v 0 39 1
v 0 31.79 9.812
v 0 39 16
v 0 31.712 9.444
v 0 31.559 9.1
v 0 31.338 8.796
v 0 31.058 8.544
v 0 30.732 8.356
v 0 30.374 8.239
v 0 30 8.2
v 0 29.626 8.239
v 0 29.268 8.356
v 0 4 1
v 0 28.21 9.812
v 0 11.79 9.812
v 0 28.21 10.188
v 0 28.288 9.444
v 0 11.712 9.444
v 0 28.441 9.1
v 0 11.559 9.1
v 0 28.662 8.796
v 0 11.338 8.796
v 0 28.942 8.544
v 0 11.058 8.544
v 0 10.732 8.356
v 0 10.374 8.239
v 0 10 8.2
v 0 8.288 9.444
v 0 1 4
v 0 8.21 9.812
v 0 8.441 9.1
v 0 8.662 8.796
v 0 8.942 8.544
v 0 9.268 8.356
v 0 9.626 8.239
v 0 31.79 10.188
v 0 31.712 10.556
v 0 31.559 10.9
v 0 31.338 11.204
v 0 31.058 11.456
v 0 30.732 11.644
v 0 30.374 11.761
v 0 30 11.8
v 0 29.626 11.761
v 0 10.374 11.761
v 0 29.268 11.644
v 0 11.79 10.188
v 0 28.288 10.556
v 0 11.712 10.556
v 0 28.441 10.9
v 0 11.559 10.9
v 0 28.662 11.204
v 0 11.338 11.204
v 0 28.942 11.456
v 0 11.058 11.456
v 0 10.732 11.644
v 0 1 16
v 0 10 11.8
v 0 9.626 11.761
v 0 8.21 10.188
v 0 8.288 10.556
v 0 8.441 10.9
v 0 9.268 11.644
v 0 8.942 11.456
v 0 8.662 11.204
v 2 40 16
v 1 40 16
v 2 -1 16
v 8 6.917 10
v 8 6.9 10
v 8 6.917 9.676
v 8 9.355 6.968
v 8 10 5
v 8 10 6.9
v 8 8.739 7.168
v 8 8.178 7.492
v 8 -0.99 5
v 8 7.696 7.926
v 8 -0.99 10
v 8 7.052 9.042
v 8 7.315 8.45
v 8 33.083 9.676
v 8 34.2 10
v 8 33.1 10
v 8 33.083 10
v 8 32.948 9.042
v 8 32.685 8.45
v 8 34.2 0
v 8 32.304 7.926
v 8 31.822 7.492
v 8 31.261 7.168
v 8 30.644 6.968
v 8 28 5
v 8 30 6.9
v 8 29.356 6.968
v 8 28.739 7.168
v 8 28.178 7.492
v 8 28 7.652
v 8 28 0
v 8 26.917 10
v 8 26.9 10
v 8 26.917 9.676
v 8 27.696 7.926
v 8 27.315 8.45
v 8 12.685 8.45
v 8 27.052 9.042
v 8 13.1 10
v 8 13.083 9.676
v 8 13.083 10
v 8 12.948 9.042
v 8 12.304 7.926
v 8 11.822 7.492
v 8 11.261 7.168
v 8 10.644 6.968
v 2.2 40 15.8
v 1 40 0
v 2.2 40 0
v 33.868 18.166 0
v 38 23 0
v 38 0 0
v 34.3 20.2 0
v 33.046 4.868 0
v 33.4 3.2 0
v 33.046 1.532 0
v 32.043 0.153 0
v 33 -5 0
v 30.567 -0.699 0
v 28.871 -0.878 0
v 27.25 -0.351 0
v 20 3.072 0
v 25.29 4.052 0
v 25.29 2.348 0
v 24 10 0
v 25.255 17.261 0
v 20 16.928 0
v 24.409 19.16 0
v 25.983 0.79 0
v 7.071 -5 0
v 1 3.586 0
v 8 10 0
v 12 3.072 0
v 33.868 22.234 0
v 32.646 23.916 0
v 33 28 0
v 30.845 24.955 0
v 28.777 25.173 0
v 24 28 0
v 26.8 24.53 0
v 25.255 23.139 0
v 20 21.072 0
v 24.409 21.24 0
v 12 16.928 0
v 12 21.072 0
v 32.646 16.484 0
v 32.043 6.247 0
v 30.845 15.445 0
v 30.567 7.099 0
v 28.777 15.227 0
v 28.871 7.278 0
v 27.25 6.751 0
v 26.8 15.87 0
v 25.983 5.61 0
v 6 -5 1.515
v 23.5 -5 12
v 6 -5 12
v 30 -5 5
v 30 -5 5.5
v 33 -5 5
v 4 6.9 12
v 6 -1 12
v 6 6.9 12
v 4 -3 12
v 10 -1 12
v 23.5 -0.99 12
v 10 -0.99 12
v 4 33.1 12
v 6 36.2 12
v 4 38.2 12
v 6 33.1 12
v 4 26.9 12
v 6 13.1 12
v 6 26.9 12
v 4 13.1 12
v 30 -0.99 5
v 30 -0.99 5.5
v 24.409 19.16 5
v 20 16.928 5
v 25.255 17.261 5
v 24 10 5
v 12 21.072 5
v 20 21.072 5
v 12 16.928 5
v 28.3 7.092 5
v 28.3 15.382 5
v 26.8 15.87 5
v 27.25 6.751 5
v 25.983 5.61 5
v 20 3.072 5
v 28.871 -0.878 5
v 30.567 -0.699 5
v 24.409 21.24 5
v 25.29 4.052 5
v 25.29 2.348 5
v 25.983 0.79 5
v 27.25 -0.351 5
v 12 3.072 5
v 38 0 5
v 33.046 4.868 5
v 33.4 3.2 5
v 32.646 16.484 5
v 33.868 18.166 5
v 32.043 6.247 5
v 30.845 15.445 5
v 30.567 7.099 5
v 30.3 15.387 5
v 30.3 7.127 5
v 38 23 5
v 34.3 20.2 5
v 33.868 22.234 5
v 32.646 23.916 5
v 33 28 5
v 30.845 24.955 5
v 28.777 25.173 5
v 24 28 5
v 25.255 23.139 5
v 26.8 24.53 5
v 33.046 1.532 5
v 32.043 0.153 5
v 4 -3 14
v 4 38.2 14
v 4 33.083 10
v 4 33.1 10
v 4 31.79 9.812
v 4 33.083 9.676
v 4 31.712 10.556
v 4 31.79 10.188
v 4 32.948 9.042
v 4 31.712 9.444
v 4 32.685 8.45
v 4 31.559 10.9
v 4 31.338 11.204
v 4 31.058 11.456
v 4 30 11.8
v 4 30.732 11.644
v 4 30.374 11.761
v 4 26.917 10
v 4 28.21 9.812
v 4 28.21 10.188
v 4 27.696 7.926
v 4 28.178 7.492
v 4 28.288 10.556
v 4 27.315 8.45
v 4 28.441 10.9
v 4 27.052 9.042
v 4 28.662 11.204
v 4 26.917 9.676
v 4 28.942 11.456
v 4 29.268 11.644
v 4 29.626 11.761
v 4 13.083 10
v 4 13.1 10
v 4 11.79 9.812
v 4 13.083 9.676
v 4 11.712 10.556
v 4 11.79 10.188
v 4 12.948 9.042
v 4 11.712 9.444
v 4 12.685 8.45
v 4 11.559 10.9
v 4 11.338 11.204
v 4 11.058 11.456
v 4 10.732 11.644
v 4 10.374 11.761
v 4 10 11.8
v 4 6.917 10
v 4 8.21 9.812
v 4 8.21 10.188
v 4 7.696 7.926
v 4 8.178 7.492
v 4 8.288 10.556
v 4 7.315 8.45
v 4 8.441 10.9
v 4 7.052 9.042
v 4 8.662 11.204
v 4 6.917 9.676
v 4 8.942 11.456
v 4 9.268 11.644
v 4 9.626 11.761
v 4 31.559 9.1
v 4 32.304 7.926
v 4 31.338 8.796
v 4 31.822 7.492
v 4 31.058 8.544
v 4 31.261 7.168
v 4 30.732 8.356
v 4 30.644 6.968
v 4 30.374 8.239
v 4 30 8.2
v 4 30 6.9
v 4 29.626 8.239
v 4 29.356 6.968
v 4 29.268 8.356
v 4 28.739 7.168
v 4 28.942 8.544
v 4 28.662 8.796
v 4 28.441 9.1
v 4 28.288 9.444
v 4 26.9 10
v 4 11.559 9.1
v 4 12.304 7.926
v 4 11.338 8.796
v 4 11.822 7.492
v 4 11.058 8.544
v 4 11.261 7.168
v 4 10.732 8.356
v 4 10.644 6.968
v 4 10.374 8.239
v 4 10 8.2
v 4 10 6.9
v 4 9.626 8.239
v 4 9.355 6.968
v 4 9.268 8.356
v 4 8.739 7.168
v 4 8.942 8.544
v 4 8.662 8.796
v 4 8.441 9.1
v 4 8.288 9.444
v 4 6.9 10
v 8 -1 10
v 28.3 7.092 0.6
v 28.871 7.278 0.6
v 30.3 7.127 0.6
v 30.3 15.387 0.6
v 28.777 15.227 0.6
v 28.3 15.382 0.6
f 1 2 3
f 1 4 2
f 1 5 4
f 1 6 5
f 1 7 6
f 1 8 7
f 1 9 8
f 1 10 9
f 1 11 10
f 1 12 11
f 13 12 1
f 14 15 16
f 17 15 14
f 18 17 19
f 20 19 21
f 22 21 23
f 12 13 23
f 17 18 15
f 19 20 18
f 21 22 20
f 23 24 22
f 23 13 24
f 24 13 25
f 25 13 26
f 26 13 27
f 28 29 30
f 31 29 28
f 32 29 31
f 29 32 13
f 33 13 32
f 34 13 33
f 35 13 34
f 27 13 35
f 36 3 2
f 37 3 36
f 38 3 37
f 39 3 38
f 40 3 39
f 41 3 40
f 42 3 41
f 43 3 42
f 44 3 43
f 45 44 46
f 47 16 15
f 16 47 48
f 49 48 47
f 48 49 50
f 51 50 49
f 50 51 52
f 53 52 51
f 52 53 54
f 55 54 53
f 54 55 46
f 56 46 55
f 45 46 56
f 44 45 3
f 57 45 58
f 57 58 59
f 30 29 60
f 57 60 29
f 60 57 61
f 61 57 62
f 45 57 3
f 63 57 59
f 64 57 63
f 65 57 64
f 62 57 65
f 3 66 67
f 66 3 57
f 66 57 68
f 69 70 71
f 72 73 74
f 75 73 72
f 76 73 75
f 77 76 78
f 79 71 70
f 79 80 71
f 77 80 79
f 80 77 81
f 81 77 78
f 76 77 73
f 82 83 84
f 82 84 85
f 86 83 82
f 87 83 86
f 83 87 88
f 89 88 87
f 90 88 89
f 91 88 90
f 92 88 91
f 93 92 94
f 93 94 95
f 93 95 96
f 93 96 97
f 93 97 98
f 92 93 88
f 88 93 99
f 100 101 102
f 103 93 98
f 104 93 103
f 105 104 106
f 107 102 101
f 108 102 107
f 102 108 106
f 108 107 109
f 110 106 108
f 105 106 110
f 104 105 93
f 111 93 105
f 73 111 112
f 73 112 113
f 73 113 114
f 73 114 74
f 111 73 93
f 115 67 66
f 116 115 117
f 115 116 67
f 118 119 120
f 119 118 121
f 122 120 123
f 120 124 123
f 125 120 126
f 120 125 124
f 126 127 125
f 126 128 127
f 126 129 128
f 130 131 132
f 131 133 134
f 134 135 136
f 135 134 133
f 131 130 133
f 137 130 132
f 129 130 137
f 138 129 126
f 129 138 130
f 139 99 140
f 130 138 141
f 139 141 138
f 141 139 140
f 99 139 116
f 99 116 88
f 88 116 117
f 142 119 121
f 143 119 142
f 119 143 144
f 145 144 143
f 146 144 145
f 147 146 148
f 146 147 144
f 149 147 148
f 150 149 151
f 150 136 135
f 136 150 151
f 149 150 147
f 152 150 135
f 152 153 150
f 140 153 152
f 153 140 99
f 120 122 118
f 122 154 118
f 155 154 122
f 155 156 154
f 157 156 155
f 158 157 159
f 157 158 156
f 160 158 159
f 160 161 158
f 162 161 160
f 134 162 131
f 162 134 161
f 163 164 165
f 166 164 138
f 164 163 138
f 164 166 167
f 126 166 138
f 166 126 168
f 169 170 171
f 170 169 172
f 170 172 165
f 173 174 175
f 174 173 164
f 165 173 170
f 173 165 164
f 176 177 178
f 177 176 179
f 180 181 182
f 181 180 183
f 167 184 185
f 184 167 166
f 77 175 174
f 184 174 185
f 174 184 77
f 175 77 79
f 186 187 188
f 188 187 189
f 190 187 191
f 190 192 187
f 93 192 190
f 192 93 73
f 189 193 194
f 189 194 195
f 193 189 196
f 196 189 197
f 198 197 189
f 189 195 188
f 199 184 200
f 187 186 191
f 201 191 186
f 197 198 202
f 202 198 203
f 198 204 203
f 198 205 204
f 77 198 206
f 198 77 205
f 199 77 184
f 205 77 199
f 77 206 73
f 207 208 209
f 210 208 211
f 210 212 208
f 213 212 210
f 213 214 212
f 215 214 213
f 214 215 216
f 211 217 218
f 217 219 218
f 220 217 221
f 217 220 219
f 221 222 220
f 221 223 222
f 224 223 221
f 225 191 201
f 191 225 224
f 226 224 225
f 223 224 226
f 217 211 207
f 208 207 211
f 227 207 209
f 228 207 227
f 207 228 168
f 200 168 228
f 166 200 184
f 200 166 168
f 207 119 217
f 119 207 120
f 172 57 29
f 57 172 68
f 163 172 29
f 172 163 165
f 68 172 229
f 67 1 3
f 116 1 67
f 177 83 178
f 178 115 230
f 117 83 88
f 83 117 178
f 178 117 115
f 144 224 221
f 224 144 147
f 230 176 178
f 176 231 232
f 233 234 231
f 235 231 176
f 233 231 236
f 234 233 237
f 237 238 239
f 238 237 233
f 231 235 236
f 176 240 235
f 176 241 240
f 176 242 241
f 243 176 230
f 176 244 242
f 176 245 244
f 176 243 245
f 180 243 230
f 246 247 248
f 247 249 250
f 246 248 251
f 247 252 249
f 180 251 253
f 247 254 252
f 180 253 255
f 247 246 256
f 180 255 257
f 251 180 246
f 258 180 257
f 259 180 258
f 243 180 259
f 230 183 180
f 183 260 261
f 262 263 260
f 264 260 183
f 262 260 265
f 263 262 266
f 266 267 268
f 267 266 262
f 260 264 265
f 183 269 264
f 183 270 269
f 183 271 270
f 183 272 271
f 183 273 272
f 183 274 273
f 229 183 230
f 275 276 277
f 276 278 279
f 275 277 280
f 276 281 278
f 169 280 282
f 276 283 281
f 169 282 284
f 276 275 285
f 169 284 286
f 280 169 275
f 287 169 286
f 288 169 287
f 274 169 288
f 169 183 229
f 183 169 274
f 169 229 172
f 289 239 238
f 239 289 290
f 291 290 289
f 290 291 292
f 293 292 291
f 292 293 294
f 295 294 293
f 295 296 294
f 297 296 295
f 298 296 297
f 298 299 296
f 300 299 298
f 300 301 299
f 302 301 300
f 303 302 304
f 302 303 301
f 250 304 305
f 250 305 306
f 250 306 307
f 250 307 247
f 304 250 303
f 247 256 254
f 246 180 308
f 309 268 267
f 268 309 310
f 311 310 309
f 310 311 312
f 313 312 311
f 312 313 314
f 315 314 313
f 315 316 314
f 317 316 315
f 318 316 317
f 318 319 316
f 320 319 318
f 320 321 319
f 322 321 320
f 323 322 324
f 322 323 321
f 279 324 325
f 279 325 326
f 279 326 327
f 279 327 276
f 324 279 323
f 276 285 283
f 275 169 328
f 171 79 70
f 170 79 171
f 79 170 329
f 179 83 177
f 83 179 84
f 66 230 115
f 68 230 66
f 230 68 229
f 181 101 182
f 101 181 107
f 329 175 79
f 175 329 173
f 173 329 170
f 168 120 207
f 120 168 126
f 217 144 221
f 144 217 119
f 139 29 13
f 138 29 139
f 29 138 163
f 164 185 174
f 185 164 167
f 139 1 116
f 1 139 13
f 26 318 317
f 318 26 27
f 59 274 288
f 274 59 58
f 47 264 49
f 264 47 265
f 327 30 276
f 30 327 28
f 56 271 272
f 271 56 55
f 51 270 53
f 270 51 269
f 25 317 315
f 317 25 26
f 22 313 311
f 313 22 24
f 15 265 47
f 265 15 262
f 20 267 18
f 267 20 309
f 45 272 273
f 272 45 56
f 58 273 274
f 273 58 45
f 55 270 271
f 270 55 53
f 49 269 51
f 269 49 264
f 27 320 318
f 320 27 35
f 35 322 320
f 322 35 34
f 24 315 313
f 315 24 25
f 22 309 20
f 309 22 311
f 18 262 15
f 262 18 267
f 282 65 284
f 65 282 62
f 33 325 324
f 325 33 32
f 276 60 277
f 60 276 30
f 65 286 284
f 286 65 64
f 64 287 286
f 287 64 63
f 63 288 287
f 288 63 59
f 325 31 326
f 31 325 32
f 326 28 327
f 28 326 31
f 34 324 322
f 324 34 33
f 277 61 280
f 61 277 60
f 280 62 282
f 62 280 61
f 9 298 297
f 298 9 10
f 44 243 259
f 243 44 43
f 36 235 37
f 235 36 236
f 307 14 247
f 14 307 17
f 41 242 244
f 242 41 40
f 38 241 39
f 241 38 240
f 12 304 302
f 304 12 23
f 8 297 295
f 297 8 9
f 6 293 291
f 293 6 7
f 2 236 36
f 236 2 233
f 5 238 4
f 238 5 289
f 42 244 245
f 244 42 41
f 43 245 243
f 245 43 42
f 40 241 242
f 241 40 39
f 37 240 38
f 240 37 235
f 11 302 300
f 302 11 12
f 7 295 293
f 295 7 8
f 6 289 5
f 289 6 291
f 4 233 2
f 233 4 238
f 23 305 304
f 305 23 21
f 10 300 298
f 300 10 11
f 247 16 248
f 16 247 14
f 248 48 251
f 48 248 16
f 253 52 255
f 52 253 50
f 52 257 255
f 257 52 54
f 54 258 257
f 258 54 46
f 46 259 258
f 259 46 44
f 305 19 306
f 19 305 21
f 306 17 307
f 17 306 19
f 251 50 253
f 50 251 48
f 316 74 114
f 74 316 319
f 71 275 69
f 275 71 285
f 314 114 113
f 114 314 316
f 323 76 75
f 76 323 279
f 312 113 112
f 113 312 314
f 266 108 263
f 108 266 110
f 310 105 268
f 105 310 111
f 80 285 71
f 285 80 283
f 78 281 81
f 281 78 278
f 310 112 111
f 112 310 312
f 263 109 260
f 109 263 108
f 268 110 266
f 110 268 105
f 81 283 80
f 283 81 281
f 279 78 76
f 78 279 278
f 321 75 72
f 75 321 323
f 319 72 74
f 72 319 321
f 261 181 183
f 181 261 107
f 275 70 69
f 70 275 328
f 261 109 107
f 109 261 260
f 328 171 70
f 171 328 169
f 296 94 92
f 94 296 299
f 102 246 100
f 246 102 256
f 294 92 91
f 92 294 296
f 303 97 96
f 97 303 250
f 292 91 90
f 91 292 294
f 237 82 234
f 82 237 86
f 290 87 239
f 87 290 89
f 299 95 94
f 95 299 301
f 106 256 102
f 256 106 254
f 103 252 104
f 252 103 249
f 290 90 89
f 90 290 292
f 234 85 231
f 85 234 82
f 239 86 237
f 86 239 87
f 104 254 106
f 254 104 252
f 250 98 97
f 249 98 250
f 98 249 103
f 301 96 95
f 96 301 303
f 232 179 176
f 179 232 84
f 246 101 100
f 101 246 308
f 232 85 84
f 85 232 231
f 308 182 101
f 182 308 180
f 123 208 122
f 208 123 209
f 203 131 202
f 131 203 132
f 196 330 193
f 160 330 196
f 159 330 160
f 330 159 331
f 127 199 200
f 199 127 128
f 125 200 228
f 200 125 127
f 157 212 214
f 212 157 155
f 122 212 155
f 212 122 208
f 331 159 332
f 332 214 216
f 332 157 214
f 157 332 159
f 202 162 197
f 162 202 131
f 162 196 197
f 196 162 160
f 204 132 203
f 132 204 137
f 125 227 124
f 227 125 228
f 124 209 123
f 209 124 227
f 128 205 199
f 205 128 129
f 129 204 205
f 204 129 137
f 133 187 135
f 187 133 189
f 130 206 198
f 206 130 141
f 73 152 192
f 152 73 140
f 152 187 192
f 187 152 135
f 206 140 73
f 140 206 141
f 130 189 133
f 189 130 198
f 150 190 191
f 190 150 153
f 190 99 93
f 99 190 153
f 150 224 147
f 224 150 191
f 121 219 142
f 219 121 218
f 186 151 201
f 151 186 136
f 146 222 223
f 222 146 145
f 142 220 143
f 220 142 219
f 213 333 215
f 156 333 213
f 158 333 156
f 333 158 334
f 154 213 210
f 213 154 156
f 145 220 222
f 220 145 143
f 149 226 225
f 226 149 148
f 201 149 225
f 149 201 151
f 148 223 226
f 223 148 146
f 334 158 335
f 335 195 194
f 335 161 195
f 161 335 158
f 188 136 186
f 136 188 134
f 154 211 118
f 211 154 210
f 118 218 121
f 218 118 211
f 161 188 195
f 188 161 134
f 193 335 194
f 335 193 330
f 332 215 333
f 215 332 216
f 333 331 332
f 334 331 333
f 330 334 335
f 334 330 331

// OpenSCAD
//Original Prusa

// PRUSA iteration3
// Z axis top holder
// GNU GPL v3
// Josef Průša <iam@josefprusa.cz> and contributors
// http://www.reprap.org/wiki/Prusa_Mendel
// http://prusamendel.org


module z_top_base(){
 translate([0,-5,0]) cube([8,45,16]); // plate touching the base
 translate([0,-5,0]) cube([30,4.01,12]); // plate touching the base
 translate([0,-5,0]) cube([38,45,5]); // plate touching the base   
}

module z_top_fancy(){
 // Corner cutouts
 translate([0.5,0.5,0])         rotate([0,0,-45-180]) translate([-15,0,-1]) cube([30,30,51]);    
 translate([0.5,40-0.5,0])      rotate([0,0,-45+90])  translate([-15,0,-1]) cube([30,30,51]);  
 
    
 translate([-13,40+5+10.2,0])   rotate([0,0,-45-0])   translate([0,0,-1])   cube([30,30,51]); // frame side angle
 translate([8,28,0]) translate([0,0,-1]) cube([50,50,51]);       

 translate([4,0,12]) rotate([0,0, 0])    translate([0,-5,0]) cube([30,50,30]);          
 translate([6,0,12]) rotate([0,-45, 0])  translate([0,-5,0]) cube([30,50,30]);
 translate([8,4,10]) rotate([0,-45, 0])  translate([0,-5,0]) cube([30,50,30]);

 translate([38-2.5,-5+2.5,0])   rotate([0,0,-45-90]) translate([-15,0,-1]) cube([30,30,51]);         
 translate([35,26,0])           rotate([0,0,-45])    translate([-15,0,-1]) cube([30,30,51]); // outer corner
 translate([0,0,5])             rotate([45+180,0,0]) rotate([0,0,-45+90])  translate([0,0,-15]) cube([30,30,30]);

 // Stiffner cut out
 translate([30,0,5.5]) rotate([0,-45,0]) translate([0,-5,0]) cube([30,50,30]);
 //easy cleanup fix
 translate([0.5,0,0.5]) rotate([0,45,0]) translate([-2.5,0,-5]) cube([5,40,5]);
}

module z_top_holes(){
     // Screw holes frame
     translate([-1,10,10])      rotate([0,90,0]) cylinder(h = 20, r=1.8, $fn=30);
     translate([-1,10+20,10])   rotate([0,90,0]) cylinder(h = 20, r=1.8, $fn=30);
    

    // Screw heads
    translate([4,10,10]) rotate([0,90,0]) cylinder(h = 20, r=3.1, $fn=30);
    translate([4,10-3.1,10]) cube([10,6.2,10]);
    translate([4,10+20,10])  rotate([0,90,0]) cylinder(h = 20, r=3.1, $fn=30);
    translate([4,10+20-3.1,10]) cube([10,6.2,10]);

    // Z rod holder
    translate([25+4.3,3.2,-1]) rotate([0,0,0]) cylinder(h = 50, r=4.1, $fn=15);

    
    
    // odlehceni A
    translate([16,10,-1]) rotate([0,0,0]) cylinder(h = 50, r=8, $fn=6); // odlehceni
    translate([16,28,-1]) rotate([0,0,0]) cylinder(h = 50, r=8, $fn=6); // odlehceni
    
    translate([25+4.3,3.2+17,-1]) rotate([0,0,0]) cylinder(h = 50, r=5, $fn=15); // screw hole

    translate([25+4.3-1,3,0.6]) cube([2,15,7]); // it's bit up because it helps with printing
 
}

module z_top_right(){
    difference(){
        z_top_base();
        z_top_fancy();
        z_top_holes();
    }
}

module z_top_left(){
    translate([0,-13,0]) mirror([0,1,0]) 
    difference(){
        z_top_base();
        z_top_fancy();
        z_top_holes();
    }
}

// Final part
//z_top_left();
z_top_right();
